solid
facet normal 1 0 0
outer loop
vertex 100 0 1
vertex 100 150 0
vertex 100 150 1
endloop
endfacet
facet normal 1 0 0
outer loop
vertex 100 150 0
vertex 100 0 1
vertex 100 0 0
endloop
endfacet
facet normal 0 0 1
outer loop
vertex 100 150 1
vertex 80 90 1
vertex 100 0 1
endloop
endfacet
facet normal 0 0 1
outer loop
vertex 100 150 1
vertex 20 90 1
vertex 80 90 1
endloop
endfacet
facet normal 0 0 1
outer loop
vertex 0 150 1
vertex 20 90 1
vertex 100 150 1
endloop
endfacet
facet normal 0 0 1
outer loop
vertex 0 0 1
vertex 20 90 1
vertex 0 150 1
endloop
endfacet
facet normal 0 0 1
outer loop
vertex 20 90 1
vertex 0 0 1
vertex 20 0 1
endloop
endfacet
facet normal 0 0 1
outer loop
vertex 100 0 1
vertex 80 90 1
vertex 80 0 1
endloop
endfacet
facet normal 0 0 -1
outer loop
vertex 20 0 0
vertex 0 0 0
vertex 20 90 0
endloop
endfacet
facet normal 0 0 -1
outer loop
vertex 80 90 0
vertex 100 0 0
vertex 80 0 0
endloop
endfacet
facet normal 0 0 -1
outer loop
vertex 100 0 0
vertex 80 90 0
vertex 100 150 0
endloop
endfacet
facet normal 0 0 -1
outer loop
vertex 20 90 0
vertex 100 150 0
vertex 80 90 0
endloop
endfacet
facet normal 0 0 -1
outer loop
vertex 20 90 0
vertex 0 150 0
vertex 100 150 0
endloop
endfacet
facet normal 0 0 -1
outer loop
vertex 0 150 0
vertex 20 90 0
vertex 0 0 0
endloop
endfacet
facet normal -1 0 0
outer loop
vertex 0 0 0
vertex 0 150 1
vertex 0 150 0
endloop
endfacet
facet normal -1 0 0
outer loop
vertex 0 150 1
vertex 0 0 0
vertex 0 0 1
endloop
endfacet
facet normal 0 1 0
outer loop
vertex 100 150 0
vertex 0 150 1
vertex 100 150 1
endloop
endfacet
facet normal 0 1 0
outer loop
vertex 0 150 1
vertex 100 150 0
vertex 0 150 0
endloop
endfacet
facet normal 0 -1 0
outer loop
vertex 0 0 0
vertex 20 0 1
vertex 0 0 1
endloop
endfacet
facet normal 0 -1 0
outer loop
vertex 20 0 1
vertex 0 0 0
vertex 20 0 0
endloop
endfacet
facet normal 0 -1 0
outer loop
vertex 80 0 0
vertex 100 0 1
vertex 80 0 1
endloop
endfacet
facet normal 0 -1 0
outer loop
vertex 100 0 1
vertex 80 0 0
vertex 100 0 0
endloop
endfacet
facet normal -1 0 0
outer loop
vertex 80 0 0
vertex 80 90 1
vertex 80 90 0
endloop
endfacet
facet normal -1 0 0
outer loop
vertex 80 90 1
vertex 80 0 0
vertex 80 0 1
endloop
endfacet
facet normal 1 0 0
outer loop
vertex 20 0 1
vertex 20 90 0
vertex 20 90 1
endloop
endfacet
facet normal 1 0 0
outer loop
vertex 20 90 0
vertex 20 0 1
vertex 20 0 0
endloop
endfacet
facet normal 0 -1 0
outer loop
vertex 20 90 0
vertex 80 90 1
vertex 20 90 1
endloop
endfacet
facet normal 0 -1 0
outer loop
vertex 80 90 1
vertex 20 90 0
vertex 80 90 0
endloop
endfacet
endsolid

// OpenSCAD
//Este codigo es un modelo 3D del acrilico que usa Corchea: Paper.

//input
//Medidas del papel
eP = 1; //espesor del papel
aP = 100; //ancho del papl
lP = 150; //largo del papel
oP = 60; //area de observacion del papel
insP = 20; //insercion de papel, ancho de la coneccion de papel que va en Clip

//output
gaP = aP-(2*insP); //ancho del gap entre los extremos del Paper
glP = lP-oP; //largo del gap entre los extremos del Paper

//Paper
difference(){
    translate([0,0,0]) 
cube([aP,lP,eP]);
    translate([insP,0,0]) 
cube([gaP,glP, eP]); 
}   
